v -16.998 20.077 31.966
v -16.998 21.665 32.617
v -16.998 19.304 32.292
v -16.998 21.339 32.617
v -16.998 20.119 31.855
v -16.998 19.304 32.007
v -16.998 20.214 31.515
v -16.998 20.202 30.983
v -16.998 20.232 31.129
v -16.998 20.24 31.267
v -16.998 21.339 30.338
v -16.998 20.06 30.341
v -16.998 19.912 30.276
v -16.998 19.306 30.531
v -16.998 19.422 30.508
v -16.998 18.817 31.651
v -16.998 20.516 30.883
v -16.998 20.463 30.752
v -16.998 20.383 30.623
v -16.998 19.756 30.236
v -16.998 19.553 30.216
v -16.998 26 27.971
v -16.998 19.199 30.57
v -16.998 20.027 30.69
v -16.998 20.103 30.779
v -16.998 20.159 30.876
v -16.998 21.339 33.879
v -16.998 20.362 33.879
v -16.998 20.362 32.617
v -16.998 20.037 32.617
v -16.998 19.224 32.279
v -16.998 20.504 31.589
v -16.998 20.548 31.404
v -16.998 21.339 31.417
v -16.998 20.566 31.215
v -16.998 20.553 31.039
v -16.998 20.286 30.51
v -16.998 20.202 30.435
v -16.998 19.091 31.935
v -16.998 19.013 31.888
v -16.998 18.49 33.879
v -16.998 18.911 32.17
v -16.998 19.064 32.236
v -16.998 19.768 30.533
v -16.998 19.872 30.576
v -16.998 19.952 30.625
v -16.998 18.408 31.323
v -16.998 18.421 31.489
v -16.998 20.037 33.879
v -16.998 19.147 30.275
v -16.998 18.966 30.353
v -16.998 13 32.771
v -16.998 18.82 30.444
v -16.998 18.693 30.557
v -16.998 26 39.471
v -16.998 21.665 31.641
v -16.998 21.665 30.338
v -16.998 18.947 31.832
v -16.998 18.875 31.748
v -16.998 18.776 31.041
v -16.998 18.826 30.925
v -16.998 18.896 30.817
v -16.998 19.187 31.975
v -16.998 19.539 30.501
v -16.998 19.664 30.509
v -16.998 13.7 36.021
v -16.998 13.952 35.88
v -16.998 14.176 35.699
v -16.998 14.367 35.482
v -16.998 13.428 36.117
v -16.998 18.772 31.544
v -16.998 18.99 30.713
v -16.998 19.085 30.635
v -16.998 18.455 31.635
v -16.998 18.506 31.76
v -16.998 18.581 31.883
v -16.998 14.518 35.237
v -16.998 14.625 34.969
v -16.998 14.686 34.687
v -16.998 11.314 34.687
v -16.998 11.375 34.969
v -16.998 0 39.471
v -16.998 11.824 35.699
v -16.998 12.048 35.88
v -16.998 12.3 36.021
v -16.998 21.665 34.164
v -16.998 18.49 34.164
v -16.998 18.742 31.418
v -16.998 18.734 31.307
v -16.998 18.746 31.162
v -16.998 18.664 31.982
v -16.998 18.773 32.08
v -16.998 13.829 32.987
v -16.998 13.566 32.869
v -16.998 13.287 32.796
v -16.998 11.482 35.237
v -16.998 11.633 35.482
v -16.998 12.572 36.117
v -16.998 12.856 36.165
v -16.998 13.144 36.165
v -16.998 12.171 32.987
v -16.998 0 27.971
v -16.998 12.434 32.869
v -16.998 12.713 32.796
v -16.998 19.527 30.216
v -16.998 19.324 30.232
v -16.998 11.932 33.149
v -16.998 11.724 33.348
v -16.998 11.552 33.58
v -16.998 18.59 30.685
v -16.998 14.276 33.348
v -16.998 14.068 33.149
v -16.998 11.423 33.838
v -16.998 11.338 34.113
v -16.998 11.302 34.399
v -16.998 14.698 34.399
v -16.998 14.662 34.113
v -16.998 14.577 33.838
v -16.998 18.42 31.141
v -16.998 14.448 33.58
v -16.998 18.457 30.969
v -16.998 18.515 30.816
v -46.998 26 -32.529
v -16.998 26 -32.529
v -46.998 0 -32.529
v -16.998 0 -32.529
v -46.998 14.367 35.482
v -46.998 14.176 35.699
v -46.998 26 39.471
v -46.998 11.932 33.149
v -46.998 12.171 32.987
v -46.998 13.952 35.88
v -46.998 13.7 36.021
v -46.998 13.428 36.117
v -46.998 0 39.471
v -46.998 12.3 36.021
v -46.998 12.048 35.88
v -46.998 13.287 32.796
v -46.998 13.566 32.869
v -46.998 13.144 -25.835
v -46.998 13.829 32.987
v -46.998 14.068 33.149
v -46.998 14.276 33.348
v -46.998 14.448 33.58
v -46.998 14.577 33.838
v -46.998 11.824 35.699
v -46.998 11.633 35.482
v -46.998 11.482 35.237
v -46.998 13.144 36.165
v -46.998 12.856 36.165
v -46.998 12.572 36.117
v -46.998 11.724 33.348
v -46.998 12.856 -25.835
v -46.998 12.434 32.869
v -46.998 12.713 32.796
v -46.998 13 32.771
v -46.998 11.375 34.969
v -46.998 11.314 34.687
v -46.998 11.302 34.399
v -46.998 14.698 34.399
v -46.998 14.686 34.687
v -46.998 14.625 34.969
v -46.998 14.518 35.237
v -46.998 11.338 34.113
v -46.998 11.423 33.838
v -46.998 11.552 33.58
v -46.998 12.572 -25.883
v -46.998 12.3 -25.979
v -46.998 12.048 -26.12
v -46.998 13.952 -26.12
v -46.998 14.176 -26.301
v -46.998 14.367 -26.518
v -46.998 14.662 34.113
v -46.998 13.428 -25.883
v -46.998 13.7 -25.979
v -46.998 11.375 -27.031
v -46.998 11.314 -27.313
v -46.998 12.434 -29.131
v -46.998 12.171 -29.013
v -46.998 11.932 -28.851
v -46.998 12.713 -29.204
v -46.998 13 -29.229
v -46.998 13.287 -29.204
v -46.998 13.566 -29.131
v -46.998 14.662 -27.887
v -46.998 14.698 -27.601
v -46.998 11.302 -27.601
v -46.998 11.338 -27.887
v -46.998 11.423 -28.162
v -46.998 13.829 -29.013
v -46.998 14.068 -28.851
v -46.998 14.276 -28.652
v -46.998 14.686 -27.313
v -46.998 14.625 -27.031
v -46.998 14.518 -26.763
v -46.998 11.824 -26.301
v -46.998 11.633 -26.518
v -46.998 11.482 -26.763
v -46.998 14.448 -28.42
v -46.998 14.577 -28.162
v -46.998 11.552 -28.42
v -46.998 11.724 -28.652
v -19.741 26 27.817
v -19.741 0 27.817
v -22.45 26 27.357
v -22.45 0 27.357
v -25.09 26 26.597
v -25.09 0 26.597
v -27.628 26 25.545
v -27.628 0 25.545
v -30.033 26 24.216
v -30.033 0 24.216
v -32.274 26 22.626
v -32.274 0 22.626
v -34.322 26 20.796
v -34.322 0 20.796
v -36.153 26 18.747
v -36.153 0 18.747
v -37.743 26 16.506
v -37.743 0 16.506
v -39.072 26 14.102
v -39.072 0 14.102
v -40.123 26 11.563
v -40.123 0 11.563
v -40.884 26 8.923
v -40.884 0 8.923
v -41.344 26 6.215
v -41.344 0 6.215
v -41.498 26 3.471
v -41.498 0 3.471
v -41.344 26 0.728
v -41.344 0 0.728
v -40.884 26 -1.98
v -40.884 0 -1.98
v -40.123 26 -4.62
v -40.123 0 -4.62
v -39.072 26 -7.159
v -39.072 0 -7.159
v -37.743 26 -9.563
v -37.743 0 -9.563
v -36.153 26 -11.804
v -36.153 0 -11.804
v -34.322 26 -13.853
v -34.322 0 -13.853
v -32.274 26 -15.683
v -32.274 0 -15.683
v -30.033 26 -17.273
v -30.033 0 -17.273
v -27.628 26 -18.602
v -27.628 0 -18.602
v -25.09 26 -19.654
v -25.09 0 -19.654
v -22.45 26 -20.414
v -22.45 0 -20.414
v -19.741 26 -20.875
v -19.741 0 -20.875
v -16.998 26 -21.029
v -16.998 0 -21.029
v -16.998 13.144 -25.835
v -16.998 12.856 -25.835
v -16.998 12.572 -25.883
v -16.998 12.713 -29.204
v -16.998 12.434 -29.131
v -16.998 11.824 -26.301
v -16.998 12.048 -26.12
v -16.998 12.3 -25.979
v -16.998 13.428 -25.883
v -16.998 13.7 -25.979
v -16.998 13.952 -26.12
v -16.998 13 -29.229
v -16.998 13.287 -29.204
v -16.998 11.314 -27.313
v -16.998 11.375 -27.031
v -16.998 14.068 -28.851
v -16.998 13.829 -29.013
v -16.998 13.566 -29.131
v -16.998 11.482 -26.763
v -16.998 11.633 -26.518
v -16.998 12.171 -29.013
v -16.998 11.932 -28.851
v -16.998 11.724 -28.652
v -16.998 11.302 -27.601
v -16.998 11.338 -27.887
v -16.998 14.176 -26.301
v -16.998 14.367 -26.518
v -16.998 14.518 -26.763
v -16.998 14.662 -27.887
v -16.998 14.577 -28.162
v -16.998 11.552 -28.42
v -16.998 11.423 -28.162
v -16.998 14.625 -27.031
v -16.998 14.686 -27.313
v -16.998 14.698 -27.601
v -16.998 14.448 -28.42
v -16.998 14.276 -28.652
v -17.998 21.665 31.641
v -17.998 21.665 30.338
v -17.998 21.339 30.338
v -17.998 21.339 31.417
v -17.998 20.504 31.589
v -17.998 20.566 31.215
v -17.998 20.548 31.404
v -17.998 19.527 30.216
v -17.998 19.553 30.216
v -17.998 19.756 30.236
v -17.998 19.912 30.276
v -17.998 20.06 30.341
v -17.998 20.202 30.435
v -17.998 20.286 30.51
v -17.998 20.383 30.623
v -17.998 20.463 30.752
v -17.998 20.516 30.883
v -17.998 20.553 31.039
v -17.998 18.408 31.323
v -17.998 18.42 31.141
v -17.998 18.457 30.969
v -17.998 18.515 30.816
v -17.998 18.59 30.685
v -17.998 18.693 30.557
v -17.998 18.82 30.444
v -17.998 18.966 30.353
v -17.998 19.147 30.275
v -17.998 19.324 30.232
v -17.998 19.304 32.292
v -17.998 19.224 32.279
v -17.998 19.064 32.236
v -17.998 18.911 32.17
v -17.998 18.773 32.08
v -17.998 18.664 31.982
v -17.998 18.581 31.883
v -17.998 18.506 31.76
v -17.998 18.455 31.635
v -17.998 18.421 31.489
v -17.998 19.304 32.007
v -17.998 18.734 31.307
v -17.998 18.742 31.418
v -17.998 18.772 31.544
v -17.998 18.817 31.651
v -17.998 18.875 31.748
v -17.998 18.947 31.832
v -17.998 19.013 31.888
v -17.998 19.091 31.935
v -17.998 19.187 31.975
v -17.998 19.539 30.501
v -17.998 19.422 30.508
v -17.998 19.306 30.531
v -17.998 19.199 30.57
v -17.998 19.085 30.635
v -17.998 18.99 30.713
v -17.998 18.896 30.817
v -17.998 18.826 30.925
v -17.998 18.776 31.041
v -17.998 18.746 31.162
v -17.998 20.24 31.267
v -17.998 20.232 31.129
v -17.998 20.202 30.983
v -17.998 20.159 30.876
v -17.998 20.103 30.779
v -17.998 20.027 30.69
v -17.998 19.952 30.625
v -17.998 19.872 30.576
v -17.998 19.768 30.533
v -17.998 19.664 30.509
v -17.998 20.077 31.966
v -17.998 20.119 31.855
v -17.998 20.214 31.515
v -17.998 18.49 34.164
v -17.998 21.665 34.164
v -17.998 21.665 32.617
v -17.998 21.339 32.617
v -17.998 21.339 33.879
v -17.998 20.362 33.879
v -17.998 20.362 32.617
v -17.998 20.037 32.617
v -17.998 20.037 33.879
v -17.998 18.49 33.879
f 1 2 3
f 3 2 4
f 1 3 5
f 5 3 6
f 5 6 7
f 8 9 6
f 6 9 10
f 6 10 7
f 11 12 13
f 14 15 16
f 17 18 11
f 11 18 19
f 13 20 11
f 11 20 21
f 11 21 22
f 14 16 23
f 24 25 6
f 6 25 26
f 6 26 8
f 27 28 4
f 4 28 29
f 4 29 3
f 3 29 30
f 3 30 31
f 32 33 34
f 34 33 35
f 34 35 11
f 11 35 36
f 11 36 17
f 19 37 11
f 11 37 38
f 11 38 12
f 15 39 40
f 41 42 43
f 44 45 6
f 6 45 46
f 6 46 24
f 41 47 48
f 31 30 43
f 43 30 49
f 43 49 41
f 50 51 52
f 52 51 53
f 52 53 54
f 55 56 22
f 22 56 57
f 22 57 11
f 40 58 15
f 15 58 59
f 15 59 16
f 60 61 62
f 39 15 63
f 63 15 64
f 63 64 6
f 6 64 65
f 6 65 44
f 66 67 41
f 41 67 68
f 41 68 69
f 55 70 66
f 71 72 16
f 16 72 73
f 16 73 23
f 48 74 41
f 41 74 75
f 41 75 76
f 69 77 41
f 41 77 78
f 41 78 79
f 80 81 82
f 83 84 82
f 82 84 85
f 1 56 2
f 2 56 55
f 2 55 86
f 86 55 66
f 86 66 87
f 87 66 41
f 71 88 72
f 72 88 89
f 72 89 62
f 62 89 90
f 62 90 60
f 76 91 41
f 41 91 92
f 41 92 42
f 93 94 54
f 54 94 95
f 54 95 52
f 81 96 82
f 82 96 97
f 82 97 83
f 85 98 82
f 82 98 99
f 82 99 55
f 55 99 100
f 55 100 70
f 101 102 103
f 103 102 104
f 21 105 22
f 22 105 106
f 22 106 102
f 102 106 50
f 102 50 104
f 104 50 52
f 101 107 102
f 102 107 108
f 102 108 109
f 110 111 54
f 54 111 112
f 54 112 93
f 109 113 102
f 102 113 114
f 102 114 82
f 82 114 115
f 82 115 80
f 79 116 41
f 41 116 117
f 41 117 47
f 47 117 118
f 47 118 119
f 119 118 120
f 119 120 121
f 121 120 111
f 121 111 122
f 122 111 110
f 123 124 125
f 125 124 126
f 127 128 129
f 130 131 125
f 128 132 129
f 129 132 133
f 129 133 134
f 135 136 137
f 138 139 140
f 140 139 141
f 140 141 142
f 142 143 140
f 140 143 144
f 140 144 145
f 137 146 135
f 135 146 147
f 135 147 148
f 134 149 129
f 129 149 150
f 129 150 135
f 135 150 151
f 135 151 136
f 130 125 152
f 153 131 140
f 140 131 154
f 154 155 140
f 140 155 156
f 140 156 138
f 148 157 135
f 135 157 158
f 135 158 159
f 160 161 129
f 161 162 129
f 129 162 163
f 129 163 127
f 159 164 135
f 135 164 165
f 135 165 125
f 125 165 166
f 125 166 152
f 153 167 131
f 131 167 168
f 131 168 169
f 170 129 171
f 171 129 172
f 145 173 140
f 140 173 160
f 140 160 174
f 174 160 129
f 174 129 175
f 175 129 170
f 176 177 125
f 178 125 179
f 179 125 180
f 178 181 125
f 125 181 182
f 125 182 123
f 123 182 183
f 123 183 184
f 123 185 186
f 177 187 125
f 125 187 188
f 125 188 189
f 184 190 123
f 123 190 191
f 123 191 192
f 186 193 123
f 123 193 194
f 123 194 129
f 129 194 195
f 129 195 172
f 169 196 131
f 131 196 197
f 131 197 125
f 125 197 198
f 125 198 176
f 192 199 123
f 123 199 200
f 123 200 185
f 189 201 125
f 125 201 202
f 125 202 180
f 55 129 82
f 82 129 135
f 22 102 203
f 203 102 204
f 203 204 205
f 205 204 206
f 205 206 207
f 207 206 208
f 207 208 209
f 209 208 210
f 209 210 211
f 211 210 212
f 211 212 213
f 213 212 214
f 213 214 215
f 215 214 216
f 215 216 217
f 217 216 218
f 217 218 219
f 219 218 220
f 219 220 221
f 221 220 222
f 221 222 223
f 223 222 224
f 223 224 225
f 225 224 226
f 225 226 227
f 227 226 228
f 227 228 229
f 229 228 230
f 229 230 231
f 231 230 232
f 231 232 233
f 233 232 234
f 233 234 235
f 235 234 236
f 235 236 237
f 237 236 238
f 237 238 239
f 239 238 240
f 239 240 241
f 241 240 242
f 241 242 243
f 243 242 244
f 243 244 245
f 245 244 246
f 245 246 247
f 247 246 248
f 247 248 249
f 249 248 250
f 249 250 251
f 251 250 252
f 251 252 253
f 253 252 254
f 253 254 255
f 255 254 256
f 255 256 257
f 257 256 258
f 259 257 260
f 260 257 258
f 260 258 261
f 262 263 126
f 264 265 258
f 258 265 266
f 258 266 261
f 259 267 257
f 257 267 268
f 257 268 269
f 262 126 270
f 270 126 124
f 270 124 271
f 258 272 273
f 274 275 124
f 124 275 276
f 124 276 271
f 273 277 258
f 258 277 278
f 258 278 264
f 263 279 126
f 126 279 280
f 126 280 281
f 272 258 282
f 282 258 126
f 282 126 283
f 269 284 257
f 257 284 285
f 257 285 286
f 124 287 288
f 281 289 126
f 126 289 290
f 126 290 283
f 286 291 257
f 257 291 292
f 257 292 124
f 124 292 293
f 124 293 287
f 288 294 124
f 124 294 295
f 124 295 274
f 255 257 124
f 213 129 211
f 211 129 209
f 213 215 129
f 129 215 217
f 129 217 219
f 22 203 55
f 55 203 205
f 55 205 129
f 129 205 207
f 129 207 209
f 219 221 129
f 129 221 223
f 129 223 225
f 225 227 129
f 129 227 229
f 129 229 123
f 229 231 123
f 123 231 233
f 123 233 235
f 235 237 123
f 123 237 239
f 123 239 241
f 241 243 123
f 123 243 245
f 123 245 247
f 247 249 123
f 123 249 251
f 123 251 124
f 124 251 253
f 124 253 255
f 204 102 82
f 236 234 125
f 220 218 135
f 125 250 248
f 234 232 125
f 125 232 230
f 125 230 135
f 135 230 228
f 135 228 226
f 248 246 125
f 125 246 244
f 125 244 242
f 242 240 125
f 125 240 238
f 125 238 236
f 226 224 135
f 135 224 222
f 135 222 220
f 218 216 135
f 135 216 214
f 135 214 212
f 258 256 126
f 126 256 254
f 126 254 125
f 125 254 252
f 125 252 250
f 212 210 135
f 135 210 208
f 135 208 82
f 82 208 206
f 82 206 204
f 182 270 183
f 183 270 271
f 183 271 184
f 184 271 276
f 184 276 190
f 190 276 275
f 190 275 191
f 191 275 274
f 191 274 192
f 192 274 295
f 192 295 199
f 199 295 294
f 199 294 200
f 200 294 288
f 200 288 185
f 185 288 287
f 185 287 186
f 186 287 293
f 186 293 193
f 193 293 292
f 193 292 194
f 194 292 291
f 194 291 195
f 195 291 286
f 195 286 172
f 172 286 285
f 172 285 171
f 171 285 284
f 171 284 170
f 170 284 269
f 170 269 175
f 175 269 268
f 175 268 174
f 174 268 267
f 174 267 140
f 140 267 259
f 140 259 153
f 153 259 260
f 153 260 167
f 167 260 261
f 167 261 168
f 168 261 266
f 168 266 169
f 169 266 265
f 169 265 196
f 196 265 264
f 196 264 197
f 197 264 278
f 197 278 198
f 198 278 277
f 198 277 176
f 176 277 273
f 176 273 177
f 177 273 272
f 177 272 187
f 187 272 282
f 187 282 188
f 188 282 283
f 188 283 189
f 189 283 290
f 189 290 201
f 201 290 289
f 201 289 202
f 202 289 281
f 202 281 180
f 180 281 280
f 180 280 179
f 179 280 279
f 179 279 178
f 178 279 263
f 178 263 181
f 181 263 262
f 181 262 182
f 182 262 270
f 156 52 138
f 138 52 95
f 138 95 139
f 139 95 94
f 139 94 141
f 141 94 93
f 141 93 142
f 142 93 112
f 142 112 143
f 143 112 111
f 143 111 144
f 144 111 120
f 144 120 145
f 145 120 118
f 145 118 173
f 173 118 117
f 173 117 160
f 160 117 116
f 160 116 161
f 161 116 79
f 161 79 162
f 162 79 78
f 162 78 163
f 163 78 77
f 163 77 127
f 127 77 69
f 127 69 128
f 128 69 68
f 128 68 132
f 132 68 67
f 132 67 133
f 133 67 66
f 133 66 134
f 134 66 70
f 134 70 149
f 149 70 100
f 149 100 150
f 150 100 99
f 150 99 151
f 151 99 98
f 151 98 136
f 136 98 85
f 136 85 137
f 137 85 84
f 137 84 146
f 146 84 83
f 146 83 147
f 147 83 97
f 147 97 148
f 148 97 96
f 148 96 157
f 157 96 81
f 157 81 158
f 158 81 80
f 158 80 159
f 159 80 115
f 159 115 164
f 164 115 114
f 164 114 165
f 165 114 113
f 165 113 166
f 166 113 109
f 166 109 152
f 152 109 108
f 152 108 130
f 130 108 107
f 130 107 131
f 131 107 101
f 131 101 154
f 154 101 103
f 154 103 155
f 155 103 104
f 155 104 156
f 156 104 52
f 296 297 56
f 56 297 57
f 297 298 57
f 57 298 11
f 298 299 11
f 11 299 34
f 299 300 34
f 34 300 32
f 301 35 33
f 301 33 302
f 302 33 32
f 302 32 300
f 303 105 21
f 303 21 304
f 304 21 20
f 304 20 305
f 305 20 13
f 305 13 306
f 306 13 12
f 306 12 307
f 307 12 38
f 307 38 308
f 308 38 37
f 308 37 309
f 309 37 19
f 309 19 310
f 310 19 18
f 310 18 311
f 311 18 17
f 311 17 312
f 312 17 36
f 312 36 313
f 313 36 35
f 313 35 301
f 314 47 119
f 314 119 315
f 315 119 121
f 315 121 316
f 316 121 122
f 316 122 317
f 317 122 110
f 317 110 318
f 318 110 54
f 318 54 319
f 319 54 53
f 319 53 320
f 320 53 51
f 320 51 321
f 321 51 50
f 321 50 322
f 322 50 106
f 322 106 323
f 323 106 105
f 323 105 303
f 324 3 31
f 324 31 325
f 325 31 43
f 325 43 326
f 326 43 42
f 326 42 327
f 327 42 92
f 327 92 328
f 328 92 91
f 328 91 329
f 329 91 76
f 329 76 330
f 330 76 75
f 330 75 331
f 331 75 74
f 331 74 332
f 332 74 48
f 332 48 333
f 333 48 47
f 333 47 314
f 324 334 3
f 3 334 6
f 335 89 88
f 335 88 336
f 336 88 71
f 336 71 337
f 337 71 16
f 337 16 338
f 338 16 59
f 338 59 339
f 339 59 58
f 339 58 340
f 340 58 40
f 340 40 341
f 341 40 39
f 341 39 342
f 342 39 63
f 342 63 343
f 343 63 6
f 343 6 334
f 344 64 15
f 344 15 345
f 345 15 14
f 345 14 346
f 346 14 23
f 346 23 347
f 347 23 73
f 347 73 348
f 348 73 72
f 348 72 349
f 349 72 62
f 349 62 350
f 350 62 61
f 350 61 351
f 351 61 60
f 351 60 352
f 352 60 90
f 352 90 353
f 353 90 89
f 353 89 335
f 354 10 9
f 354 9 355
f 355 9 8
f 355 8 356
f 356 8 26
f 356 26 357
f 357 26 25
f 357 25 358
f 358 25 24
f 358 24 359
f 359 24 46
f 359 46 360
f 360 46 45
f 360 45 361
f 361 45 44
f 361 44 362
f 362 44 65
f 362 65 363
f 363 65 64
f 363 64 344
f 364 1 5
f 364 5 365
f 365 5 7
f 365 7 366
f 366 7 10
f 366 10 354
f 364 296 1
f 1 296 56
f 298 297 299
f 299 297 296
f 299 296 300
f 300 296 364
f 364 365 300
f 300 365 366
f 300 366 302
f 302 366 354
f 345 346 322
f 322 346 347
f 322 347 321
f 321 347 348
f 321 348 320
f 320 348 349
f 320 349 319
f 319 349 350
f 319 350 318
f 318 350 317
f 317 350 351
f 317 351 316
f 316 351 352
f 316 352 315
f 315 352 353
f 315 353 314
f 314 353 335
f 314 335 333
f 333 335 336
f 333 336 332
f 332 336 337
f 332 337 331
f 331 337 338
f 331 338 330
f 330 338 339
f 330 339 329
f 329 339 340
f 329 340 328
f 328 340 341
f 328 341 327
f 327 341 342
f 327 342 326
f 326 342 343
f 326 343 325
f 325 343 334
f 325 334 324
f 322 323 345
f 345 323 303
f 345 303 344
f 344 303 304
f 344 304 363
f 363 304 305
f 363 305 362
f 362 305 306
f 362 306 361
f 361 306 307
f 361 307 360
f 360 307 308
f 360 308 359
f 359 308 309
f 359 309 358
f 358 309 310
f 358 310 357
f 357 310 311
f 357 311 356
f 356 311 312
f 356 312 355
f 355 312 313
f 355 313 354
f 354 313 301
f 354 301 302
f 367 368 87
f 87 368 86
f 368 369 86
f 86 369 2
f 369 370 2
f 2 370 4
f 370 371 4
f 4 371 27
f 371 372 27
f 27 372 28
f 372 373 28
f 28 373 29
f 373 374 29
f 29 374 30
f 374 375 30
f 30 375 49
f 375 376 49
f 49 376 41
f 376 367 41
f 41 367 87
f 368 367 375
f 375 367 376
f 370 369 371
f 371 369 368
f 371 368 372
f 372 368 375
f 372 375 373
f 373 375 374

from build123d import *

# Parameters (mm, degrees)
BOSS_EXTRUDE1_DEPTH = 26
SKETCH2_R           = 1.7
CUT_EXTRUDE1_DEPTH  = 31
CUT_EXTRUDE2_DEPTH  = 1


with BuildPart() as part:
    # Sketch1 → Boss-Extrude1 (new body)
    with BuildSketch(Plane(origin=(0, 0, 0), x_dir=(1, 0, 0), z_dir=(0, 1, 0))):
        with BuildLine():
            Line((-46.998275301, 32.528571429), (-46.998275301, -39.471428571))
            Line((-46.998275301, -39.471428571), (-16.998275301, -39.471428571))
            Line((-16.998275301, -39.471428571), (-16.998275301, -27.971428571))
            ThreePointArc((-16.998275301, -27.971428571), (-41.498275301, -3.471428571), (-16.998275301, 21.028571429))
            Line((-16.998275301, 21.028571429), (-16.998275301, 32.528571429))
            Line((-16.998275301, 32.528571429), (-46.998275301, 32.528571429))
        make_face()
    extrude(amount=BOSS_EXTRUDE1_DEPTH)

    # Sketch2 → Cut-Extrude1 (cut, through all)
    with BuildSketch(Plane(origin=(-16.998275301, 0, 0), x_dir=(0, 0, -1), z_dir=(1, 0, 0))):
        with Locations((-34.471428571, 13)):
            Circle(SKETCH2_R)
        with Locations((27.528571429, 13)):
            Circle(SKETCH2_R)
    extrude(amount=-CUT_EXTRUDE1_DEPTH, mode=Mode.SUBTRACT)

    # Sketch3 → Cut-Extrude2 (cut)
    with BuildSketch(Plane(origin=(-16.998275301, 0, 0), x_dir=(0, 0, -1), z_dir=(1, 0, 0))):
        Polygon((-34.164231178, 21.664809495), (-32.617436306, 21.664809495), (-32.617436306, 21.33916847), (-33.87929528, 21.33916847), (-33.87929528, 20.362245393), (-32.617436306, 20.362245393), (-32.617436306, 20.036604367), (-33.87929528, 20.036604367), (-33.87929528, 18.489809495), (-34.164231178, 18.489809495), align=None)
        with BuildLine():
            Line((-30.337949127, 21.664809495), (-30.337949127, 21.33916847))
            Line((-30.337949127, 21.33916847), (-31.417271042, 21.33916847))
            Line((-31.417271042, 21.33916847), (-31.588995801, 20.504077324))
            add(Edge.make_bspline(
                [(-31.588995801, 20.504077324), (-31.555380829, 20.513357642), (-31.490257138, 20.53133679), (-31.394136407, 20.551299168), (-31.302884908, 20.563332821), (-31.243670822, 20.564975938), (-31.215017436, 20.565771034)],
                knots=[0, 0, 0, 0, 0.000104595, 0.000202637, 0.000294305, 0.000380252, 0.000380252, 0.000380252, 0.000380252], degree=3))
            add(Edge.make_bspline(
                [(-31.215017436, 20.565771034), (-31.179562901, 20.565003649), (-31.109850426, 20.56349478), (-31.007852238, 20.54900603), (-30.910485971, 20.526200536), (-30.817955249, 20.494341206), (-30.730088893, 20.453601662), (-30.647695319, 20.402711002), (-30.569537784, 20.343262909), (-30.497018431, 20.27491422), (-30.431228522, 20.199692467), (-30.37338366, 20.118813541), (-30.324250453, 20.033063448), (-30.284734626, 19.941622896), (-30.253180265, 19.845502806), (-30.232178099, 19.743691821), (-30.218192941, 19.637149598), (-30.216630491, 19.564301881), (-30.215833742, 19.527154247)],
                knots=[0, 0, 0, 0, 0.000106308, 0.000209029, 0.000308378, 0.000405929, 0.000502102, 0.000598312, 0.00069588, 0.000796219, 0.000896736, 0.000995218, 0.001094066, 0.001192613, 0.001293582, 0.001396995, 0.001504047, 0.001615439, 0.001615439, 0.001615439, 0.001615439], degree=3))
            add(Edge.make_bspline(
                [(-30.215833742, 19.527154247), (-30.21643706, 19.501280519), (-30.217635543, 19.449882723), (-30.223730262, 19.373551912), (-30.235464805, 19.298837056), (-30.251219812, 19.225728244), (-30.271669005, 19.154363885), (-30.296424075, 19.084539713), (-30.326719043, 19.01669032), (-30.359948934, 18.950173711), (-30.397365381, 18.886493637), (-30.438893027, 18.826940628), (-30.482767437, 18.770621315), (-30.529976408, 18.718139715), (-30.58095874, 18.669840691), (-30.635096995, 18.625437607), (-30.691959176, 18.584179543), (-30.752425003, 18.547741252), (-30.815147113, 18.51421057), (-30.881031281, 18.48670279), (-30.948577774, 18.462109668), (-31.018758768, 18.44250674), (-31.091415298, 18.427146494), (-31.16666713, 18.416713806), (-31.244119595, 18.409115181), (-31.296620499, 18.408639514), (-31.323140433, 18.408399239)],
                knots=[0, 0, 0, 0, 7.7636e-05, 0.000154223, 0.000229512, 0.000304362, 0.000378447, 0.000452077, 0.000526407, 0.000601214, 0.00067506, 0.000747747, 0.00081887, 0.000889121, 0.000959302, 0.001029336, 0.001099058, 0.00116985, 0.001240974, 0.00131221, 0.00138383, 0.001456517, 0.001530612, 0.001606437, 0.001684346, 0.001763871, 0.001763871, 0.001763871, 0.001763871], degree=3))
            add(Edge.make_bspline(
                [(-31.323140433, 18.408399239), (-31.354776297, 18.409025928), (-31.417016122, 18.410258864), (-31.508202636, 18.423157061), (-31.5959366, 18.441630042), (-31.679511763, 18.469421516), (-31.759677124, 18.504244276), (-31.835353446, 18.548255374), (-31.9084744, 18.598129276), (-31.976067462, 18.656985024), (-32.038801936, 18.721315679), (-32.094959984, 18.791127253), (-32.144974014, 18.865267533), (-32.188043113, 18.944096573), (-32.224780604, 19.02740724), (-32.253641343, 19.115511677), (-32.276935279, 19.207949537), (-32.286789954, 19.271588793), (-32.29179528, 19.303912059)],
                knots=[0, 0, 0, 0, 9.4843e-05, 0.000186593, 0.000275792, 0.000363484, 0.000450342, 0.000537514, 0.000625728, 0.000715478, 0.000805885, 0.000894984, 0.00098389, 0.001073836, 0.001164117, 0.001256635, 0.001351658, 0.001449737, 0.001449737, 0.001449737, 0.001449737], degree=3))
            Line((-32.29179528, 19.303912059), (-32.006859383, 19.303912059))
            add(Edge.make_bspline(
                [(-32.006859383, 19.303912059), (-31.999848477, 19.273634849), (-31.986373127, 19.215440369), (-31.956795055, 19.133678367), (-31.920631011, 19.060817357), (-31.877628495, 18.995893521), (-31.826329539, 18.939279645), (-31.767792128, 18.888827024), (-31.702162408, 18.843311014), (-31.629234264, 18.805371789), (-31.552296685, 18.773015134), (-31.471772144, 18.751468954), (-31.389853202, 18.736318858), (-31.334446394, 18.734802333), (-31.306603974, 18.734040265)],
                knots=[0, 0, 0, 0, 9.3172e-05, 0.000179081, 0.000260145, 0.000336703, 0.000411917, 0.000488562, 0.000568128, 0.000650923, 0.00073478, 0.000817953, 0.000900557, 0.000983994, 0.000983994, 0.000983994, 0.000983994], degree=3))
            add(Edge.make_bspline(
                [(-31.306603974, 18.734040265), (-31.279427385, 18.734784827), (-31.22591646, 18.736250878), (-31.14716613, 18.747534839), (-31.07113588, 18.764913493), (-30.998575921, 18.790921147), (-30.928216524, 18.822530284), (-30.861837461, 18.863093246), (-30.797518422, 18.909774834), (-30.737258616, 18.96325692), (-30.682068544, 19.022193714), (-30.633304062, 19.085219635), (-30.592685005, 19.152454203), (-30.558454778, 19.222733421), (-30.532462142, 19.29682754), (-30.513919252, 19.374389321), (-30.503030763, 19.455610338), (-30.501532907, 19.511008927), (-30.500769639, 19.539238582)],
                knots=[0, 0, 0, 0, 8.15e-05, 0.000160473, 0.000238226, 0.000315066, 0.000391338, 0.000469218, 0.000547964, 0.000629516, 0.000710512, 0.000789892, 0.000868102, 0.000945761, 0.001024012, 0.00110315, 0.001184644, 0.001269321, 0.001269321, 0.001269321, 0.001269321], degree=3))
            add(Edge.make_bspline(
                [(-30.500769639, 19.539238582), (-30.501366974, 19.564707299), (-30.502536172, 19.61455869), (-30.512088904, 19.687492256), (-30.528705015, 19.756501373), (-30.551768106, 19.821919285), (-30.581050231, 19.883807694), (-30.616833671, 19.94223047), (-30.659789968, 19.99641759), (-30.708859038, 20.046394406), (-30.762614547, 20.092517971), (-30.82198137, 20.13183725), (-30.885717161, 20.164915232), (-30.953054012, 20.193461202), (-31.025593599, 20.213963307), (-31.101899401, 20.229355603), (-31.182795415, 20.238259539), (-31.238104539, 20.239494967), (-31.266534864, 20.240130008)],
                knots=[0, 0, 0, 0, 7.6388e-05, 0.000149519, 0.000220172, 0.000288967, 0.000357247, 0.000425206, 0.000494043, 0.000564207, 0.000635056, 0.000706145, 0.000777268, 0.000850264, 0.000925136, 0.001002969, 0.001083601, 0.001168886, 0.001168886, 0.001168886, 0.001168886], degree=3))
            add(Edge.make_bspline(
                [(-31.266534864, 20.240130008), (-31.291144678, 20.239603329), (-31.3419577, 20.23851587), (-31.419901979, 20.230508977), (-31.50180947, 20.217591903), (-31.587366191, 20.199824378), (-31.676829081, 20.17657333), (-31.770009344, 20.14871089), (-31.8671029, 20.115398791), (-31.932523979, 20.090241712), (-31.966154255, 20.077309495)],
                knots=[0, 0, 0, 0, 7.3822e-05, 0.000152423, 0.000234822, 0.000322511, 0.00041445, 0.000512043, 0.000614219, 0.000722306, 0.000722306, 0.000722306, 0.000722306], degree=3))
            Line((-31.966154255, 20.077309495), (-31.640513229, 21.664809495))
            Line((-31.640513229, 21.664809495), (-30.337949127, 21.664809495))
        make_face()
    extrude(amount=-CUT_EXTRUDE2_DEPTH, mode=Mode.SUBTRACT)


solid = part.part
